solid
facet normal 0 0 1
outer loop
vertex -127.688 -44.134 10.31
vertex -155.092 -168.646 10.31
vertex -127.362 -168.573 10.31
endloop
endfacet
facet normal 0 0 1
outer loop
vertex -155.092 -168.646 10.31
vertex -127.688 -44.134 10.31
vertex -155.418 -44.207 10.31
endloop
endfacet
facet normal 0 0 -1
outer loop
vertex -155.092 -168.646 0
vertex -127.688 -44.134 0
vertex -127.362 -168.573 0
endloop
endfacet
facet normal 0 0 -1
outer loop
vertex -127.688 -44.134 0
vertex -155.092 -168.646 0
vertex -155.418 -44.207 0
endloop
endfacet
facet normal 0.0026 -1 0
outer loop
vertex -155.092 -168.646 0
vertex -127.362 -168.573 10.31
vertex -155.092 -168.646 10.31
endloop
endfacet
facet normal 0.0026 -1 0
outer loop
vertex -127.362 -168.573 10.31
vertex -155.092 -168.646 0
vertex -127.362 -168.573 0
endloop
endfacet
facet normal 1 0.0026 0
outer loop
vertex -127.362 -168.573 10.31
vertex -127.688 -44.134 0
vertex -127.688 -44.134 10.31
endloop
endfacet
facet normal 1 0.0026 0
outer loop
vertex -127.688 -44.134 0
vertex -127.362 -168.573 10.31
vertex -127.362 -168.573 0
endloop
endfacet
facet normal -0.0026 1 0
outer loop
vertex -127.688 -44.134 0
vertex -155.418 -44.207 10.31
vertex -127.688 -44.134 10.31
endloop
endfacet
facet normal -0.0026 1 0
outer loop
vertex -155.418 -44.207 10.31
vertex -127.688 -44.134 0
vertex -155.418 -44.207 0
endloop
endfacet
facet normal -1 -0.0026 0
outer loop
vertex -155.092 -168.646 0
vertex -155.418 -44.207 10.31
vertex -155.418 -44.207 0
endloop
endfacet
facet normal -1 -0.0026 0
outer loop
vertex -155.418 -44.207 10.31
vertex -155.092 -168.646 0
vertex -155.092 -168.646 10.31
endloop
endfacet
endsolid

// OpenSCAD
translate([-141.390, -106.390, 0]) rotate([0, 0, 0.150]) translate([-13.865, -62.220, 0]) cube([27.730, 124.440, 10.310]);
